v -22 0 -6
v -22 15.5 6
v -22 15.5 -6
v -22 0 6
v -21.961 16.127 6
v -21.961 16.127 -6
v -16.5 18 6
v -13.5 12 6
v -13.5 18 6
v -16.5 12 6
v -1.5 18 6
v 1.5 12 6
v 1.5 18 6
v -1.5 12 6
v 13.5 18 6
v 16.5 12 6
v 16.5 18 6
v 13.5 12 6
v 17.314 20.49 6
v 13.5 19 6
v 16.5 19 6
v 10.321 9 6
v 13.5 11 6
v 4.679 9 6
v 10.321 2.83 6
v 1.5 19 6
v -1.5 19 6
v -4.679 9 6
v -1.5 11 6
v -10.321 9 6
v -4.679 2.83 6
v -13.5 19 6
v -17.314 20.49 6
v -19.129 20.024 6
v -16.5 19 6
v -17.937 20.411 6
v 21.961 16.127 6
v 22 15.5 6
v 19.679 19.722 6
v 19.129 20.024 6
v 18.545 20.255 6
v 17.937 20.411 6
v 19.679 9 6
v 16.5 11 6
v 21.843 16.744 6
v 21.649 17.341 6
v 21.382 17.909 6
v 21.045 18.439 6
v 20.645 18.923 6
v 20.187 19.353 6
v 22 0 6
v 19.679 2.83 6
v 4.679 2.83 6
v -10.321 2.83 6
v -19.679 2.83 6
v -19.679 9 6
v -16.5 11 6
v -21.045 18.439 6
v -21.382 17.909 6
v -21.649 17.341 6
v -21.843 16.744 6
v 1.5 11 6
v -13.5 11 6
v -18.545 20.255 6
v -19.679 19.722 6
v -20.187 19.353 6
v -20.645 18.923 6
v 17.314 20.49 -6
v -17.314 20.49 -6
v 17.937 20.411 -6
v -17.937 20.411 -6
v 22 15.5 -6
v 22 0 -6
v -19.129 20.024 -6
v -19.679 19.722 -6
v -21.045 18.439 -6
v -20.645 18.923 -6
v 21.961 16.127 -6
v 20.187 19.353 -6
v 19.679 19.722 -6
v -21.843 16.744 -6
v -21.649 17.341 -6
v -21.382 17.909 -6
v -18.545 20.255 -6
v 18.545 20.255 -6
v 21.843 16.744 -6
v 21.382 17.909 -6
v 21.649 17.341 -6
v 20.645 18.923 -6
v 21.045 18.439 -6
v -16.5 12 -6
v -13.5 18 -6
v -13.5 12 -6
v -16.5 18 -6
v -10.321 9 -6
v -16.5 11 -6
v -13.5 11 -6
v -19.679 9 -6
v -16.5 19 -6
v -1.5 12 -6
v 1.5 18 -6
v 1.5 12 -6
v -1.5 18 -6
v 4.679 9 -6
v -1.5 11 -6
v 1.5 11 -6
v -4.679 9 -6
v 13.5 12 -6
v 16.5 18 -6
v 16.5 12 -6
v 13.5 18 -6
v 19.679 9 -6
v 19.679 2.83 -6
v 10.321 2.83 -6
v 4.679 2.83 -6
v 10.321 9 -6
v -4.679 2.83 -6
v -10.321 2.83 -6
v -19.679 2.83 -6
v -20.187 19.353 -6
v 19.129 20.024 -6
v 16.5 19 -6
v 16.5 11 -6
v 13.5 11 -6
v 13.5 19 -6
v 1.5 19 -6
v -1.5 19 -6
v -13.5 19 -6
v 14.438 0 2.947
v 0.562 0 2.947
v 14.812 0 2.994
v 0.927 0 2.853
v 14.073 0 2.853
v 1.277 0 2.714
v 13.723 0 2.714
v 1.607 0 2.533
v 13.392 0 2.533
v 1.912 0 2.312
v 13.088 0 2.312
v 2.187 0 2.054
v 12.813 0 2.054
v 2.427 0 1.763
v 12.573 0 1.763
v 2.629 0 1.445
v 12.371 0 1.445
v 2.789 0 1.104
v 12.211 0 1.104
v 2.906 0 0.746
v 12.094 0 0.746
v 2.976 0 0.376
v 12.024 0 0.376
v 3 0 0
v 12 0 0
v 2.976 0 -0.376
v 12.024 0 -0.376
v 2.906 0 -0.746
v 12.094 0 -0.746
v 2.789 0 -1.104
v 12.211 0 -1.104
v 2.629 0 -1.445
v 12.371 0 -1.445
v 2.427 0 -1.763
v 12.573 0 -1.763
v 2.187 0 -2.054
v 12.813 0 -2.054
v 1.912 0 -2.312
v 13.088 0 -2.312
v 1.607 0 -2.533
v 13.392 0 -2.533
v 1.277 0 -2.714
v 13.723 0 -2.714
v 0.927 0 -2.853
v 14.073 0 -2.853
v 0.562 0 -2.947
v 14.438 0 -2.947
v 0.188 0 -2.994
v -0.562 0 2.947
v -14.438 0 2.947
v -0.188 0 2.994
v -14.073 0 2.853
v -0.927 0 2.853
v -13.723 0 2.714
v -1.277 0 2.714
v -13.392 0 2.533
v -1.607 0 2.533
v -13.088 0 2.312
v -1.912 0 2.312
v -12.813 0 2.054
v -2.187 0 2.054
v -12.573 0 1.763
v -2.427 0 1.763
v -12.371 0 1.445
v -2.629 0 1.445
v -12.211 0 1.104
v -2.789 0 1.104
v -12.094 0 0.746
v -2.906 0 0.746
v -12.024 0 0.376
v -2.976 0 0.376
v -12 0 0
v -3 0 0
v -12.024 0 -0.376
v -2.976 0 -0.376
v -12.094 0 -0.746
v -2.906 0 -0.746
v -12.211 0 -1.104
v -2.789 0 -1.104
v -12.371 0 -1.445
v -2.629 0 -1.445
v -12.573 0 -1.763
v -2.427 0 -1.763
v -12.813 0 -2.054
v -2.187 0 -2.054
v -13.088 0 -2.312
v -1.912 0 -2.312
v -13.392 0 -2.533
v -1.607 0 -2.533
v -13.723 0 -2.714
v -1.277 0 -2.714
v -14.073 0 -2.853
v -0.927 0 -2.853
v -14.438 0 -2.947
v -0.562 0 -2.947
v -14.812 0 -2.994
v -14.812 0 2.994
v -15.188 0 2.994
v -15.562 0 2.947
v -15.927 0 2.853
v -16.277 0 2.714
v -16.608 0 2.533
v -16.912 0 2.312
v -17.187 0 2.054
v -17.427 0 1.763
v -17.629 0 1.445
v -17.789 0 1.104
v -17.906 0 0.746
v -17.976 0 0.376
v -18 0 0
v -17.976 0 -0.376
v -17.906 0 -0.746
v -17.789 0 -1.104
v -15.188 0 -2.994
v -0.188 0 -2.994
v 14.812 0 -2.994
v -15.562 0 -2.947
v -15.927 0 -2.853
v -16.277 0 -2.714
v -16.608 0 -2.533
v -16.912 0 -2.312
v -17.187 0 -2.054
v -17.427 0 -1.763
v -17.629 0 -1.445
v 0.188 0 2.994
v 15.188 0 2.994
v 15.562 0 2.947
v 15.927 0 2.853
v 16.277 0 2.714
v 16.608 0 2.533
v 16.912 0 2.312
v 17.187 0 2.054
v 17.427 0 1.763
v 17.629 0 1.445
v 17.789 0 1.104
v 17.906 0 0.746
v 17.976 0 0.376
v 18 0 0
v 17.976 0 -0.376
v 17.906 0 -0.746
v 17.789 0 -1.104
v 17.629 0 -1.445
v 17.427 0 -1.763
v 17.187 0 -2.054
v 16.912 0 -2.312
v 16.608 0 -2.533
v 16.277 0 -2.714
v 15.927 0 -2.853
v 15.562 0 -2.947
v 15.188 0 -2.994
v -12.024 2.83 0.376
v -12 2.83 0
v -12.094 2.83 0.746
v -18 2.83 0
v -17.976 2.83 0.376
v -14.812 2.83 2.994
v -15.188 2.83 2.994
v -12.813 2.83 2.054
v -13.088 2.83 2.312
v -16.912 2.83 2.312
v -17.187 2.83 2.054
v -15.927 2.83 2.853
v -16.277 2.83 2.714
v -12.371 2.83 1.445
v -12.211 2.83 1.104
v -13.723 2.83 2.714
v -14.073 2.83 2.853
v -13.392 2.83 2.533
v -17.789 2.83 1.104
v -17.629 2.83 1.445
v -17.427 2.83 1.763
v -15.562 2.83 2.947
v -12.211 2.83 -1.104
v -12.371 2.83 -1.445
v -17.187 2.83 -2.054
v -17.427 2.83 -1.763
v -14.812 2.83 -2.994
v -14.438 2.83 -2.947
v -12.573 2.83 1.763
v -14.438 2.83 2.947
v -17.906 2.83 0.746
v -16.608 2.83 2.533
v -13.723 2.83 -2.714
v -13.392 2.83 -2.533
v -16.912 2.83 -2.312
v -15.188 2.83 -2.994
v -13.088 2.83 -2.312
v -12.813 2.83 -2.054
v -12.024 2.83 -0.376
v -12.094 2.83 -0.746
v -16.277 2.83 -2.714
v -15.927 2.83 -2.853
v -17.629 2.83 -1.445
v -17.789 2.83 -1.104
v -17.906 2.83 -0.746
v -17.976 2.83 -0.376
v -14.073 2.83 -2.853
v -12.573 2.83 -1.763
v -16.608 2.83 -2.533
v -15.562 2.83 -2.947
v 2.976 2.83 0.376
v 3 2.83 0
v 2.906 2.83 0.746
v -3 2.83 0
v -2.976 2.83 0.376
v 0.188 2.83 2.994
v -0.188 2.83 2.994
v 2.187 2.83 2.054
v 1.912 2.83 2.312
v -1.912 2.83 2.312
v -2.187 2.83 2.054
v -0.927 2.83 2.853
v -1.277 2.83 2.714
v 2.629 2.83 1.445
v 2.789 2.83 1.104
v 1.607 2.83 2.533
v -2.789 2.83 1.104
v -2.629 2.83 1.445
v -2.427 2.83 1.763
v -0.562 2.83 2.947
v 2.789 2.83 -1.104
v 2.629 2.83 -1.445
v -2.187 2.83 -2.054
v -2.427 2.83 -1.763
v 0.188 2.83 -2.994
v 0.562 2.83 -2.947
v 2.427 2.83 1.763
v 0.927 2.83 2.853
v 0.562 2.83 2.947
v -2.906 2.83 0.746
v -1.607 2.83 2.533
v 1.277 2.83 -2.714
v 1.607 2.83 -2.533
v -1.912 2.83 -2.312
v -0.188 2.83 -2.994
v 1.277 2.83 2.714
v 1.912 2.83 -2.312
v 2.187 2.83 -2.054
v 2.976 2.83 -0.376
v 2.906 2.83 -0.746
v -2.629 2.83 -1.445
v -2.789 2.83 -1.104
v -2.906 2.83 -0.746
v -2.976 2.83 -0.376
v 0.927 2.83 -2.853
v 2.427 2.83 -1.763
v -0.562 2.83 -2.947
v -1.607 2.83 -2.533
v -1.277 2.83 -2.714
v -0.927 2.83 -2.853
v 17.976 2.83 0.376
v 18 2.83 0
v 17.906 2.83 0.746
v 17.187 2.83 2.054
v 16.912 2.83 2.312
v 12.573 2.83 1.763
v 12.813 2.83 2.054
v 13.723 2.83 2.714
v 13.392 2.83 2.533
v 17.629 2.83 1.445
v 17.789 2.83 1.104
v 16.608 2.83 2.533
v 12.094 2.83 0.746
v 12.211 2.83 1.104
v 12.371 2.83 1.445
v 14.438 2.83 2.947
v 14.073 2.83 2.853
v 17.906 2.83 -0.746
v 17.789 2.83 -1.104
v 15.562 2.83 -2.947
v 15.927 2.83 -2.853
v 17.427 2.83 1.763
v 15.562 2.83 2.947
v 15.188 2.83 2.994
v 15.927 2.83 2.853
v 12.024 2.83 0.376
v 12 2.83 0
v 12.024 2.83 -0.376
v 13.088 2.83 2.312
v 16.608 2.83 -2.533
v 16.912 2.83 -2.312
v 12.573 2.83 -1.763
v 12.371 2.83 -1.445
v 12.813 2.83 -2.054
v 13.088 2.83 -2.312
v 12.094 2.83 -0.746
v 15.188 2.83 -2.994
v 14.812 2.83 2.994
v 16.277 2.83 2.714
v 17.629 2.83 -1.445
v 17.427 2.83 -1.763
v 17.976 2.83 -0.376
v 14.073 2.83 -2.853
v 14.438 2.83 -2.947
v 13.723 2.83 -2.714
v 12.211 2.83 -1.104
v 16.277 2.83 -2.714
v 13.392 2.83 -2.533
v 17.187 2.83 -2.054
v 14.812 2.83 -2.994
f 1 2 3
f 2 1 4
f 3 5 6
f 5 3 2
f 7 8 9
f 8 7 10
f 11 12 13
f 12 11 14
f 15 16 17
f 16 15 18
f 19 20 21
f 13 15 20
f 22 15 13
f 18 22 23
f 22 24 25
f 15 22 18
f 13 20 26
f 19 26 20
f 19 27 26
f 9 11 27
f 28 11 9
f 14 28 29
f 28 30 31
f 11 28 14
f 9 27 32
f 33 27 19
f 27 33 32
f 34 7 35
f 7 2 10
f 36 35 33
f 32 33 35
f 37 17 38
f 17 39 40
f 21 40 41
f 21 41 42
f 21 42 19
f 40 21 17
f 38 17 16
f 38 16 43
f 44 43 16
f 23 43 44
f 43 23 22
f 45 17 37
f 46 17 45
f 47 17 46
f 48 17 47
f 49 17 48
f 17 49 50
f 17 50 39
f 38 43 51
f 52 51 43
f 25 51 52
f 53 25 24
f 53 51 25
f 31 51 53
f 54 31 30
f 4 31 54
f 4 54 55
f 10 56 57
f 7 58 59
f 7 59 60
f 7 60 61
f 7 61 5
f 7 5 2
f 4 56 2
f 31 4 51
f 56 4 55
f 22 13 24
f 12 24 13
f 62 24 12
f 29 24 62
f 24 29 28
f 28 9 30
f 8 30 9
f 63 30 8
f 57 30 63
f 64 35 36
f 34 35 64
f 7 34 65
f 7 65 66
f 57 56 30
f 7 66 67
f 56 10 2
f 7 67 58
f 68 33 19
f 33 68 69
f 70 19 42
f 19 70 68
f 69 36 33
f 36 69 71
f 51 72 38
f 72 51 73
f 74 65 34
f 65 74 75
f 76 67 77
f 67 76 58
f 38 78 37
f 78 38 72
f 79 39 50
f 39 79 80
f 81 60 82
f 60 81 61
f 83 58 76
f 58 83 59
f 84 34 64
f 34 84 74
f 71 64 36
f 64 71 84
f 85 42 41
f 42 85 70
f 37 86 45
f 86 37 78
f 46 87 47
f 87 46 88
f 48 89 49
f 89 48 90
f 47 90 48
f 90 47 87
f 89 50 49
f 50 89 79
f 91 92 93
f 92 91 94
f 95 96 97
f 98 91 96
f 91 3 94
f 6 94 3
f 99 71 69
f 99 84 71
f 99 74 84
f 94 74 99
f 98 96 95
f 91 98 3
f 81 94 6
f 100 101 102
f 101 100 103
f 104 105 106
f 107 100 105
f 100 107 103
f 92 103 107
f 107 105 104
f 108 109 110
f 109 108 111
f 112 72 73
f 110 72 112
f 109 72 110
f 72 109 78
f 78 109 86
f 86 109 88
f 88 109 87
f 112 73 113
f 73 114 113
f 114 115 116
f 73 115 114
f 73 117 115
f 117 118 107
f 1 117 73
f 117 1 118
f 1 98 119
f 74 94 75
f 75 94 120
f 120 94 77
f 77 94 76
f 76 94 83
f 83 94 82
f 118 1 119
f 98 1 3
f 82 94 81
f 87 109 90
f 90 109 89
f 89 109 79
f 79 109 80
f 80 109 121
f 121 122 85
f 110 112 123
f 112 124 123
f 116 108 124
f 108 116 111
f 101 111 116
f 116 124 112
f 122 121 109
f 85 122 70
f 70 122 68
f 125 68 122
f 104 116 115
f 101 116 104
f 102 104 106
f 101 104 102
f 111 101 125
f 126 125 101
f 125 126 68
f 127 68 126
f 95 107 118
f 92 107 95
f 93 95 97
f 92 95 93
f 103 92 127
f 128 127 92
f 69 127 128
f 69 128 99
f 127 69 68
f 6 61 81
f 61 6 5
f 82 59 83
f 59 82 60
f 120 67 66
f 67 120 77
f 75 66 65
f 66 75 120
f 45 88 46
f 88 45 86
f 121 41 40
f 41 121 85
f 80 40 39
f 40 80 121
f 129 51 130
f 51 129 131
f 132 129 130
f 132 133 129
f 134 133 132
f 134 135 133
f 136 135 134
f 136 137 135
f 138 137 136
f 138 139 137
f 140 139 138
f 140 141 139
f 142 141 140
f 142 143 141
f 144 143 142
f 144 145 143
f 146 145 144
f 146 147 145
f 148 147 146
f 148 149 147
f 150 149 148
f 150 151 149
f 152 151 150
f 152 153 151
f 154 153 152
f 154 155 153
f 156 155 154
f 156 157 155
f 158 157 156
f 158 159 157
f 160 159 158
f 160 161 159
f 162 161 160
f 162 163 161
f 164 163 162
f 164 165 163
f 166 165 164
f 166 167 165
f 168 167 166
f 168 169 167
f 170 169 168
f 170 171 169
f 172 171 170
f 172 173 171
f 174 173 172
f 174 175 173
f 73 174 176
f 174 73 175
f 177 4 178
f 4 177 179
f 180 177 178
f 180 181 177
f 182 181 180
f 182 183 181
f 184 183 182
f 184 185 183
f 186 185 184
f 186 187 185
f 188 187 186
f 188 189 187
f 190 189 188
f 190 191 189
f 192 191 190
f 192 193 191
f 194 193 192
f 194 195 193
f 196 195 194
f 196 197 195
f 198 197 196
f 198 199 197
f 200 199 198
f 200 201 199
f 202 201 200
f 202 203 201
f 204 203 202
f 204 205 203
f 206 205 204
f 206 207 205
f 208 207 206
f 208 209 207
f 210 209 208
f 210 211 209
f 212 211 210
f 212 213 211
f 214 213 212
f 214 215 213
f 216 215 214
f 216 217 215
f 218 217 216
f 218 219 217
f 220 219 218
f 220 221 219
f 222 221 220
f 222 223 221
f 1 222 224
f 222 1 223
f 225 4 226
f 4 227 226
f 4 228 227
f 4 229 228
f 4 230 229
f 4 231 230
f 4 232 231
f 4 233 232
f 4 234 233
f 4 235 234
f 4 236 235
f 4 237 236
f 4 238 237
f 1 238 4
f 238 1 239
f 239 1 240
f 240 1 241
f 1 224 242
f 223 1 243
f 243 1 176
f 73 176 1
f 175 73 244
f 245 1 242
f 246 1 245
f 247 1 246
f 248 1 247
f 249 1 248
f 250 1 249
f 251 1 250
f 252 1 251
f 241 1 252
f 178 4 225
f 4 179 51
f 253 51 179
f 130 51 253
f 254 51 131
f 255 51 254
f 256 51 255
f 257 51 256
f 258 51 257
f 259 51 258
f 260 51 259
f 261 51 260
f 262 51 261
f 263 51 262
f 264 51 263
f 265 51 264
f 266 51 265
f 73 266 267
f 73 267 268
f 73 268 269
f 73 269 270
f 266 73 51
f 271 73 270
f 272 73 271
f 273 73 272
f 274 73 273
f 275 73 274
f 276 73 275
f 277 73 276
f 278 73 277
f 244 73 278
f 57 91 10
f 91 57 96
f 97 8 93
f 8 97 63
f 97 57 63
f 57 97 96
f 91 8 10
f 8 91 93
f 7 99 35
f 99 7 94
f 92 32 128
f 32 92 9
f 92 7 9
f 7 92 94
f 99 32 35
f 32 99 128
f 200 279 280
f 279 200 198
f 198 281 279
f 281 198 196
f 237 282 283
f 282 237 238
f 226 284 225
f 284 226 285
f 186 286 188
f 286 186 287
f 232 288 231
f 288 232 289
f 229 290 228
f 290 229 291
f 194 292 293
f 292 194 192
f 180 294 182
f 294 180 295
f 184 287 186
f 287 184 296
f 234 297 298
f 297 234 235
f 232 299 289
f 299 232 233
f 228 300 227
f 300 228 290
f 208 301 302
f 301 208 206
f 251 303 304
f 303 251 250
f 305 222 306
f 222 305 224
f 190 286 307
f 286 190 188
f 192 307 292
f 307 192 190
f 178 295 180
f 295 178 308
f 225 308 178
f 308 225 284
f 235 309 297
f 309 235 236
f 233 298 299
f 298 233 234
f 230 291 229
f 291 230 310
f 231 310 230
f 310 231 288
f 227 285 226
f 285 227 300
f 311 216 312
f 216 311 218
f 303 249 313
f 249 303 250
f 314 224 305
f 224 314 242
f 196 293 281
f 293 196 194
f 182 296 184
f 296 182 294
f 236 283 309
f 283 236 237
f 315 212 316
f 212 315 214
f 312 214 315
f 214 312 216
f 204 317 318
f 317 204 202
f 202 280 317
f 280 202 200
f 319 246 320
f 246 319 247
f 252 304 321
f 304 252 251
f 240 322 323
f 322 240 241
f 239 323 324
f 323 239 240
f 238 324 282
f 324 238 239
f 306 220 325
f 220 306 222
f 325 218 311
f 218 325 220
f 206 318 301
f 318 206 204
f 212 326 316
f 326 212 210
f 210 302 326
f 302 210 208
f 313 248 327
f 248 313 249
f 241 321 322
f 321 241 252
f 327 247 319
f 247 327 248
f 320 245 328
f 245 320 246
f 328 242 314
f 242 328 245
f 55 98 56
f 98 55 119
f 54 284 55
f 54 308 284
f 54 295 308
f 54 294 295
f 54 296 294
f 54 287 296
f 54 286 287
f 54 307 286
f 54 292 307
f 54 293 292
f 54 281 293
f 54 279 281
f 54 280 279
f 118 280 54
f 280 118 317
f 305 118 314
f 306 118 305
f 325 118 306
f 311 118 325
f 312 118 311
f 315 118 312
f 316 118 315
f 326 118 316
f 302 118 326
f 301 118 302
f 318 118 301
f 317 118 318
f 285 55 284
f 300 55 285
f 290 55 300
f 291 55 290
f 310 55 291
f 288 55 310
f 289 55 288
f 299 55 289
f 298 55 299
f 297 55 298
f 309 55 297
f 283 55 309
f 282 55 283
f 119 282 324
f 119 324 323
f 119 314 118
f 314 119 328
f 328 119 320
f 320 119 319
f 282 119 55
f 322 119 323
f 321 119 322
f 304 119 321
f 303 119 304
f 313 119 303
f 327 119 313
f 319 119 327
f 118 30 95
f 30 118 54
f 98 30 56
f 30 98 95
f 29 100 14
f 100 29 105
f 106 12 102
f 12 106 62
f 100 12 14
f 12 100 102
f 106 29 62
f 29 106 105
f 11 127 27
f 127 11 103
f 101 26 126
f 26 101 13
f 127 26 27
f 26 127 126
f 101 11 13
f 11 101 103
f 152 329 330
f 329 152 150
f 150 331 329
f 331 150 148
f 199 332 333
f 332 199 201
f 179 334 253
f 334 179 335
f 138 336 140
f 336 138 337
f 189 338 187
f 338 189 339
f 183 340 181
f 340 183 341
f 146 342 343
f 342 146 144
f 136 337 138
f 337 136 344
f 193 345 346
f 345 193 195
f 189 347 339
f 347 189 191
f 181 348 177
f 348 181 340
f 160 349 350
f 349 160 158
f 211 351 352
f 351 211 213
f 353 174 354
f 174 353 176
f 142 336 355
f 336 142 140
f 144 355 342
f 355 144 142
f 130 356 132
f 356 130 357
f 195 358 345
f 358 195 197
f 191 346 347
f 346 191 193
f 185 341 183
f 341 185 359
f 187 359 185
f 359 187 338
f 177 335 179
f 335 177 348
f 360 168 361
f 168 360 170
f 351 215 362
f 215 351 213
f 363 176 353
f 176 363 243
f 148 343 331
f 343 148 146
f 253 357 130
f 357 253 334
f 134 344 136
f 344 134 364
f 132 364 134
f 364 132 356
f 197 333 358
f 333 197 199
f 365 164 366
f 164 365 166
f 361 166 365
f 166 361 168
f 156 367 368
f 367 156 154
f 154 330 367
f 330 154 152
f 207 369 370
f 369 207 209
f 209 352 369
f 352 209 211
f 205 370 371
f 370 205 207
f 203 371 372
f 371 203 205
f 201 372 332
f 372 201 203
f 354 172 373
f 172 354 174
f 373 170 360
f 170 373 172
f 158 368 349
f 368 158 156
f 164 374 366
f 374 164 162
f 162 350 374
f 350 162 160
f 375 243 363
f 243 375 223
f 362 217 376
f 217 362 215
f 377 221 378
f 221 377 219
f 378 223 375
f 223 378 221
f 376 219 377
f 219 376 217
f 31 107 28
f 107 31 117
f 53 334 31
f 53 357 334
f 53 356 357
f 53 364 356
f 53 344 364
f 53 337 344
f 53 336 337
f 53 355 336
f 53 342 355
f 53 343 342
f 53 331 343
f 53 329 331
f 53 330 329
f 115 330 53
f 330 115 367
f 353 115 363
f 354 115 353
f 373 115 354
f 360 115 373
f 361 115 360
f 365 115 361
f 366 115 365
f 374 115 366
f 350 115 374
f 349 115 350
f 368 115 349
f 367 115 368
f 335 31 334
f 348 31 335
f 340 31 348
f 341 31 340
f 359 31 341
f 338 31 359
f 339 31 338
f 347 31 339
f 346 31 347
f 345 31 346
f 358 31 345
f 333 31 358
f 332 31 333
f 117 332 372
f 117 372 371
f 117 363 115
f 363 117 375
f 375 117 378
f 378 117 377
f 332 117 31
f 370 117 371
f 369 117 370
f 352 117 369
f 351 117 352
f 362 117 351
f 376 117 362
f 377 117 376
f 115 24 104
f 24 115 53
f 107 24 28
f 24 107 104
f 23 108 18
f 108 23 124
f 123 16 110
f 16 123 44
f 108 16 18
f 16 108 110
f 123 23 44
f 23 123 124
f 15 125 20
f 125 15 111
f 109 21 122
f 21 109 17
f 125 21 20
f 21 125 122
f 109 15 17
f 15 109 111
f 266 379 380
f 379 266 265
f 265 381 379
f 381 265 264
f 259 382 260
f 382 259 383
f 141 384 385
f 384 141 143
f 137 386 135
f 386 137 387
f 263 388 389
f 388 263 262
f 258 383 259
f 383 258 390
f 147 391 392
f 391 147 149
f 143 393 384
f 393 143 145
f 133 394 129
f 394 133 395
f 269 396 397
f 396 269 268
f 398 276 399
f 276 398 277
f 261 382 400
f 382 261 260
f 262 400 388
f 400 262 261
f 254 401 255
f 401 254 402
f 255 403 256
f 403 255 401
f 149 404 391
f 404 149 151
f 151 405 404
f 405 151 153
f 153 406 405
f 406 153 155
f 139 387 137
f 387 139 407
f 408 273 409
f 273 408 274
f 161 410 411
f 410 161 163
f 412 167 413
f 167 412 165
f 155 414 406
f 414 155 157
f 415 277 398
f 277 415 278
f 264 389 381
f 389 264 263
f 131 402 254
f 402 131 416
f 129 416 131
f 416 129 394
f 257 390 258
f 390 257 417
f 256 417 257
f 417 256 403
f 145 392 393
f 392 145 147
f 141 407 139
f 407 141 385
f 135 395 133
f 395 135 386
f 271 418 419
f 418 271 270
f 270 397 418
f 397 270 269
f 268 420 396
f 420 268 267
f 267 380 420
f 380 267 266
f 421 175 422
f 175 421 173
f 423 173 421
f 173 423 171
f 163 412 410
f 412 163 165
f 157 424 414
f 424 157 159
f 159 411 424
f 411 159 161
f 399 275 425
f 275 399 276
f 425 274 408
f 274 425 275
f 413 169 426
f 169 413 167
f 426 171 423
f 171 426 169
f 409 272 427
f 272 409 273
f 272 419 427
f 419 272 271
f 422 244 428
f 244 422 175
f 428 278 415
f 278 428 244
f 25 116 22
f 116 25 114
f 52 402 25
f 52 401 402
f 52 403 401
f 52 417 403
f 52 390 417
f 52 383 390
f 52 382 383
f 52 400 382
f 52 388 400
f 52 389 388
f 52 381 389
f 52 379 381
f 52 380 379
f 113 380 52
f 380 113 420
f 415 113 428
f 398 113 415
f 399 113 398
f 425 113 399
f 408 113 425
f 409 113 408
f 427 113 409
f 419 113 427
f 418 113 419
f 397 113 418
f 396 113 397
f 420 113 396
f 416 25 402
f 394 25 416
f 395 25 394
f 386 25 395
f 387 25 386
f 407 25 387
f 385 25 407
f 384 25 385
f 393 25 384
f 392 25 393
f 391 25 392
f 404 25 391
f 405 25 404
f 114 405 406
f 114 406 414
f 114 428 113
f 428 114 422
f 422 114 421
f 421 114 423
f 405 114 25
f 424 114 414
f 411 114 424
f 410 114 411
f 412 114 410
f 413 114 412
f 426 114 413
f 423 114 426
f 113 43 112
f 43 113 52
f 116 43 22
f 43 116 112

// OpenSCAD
$fn = 50;


difference() {
	union() {
		translate(v = [0, 13.5000000000, -6.0000000000]) {
			rotate(a = [0, 0, 0]) {
				hull() {
					translate(v = [-17.0000000000, 2.0000000000, 0]) {
						rotate(a = [0, 0, 0]) {
							translate(v = [0, 0, 0]) {
								rotate(a = [0, 0, 0]) {
									cylinder(h = 12, r = 5);
								}
							}
						}
					}
					translate(v = [17.0000000000, 2.0000000000, 0]) {
						rotate(a = [0, 0, 0]) {
							translate(v = [0, 0, 0]) {
								rotate(a = [0, 0, 0]) {
									cylinder(h = 12, r = 5);
								}
							}
						}
					}
					translate(v = [-17.0000000000, -2.0000000000, 0]) {
						rotate(a = [0, 0, 0]) {
							translate(v = [0, 0, 0]) {
								rotate(a = [0, 0, 0]) {
									cylinder(h = 12, r = 5);
								}
							}
						}
					}
					translate(v = [17.0000000000, -2.0000000000, 0]) {
						rotate(a = [0, 0, 0]) {
							translate(v = [0, 0, 0]) {
								rotate(a = [0, 0, 0]) {
									cylinder(h = 12, r = 5);
								}
							}
						}
					}
				}
			}
		}
		translate(v = [-22.0000000000, 0, -6.0000000000]) {
			rotate(a = [0, 0, 0]) {
				cube(size = [44, 13.5000000000, 12]);
			}
		}
	}
	union() {
		translate(v = [-16.5000000000, 11.0000000000, -50]) {
			rotate(a = [0, 0, 0]) {
				cube(size = [3, 1, 100]);
			}
		}
		translate(v = [-16.5000000000, 18.0000000000, -50]) {
			rotate(a = [0, 0, 0]) {
				cube(size = [3, 1, 100]);
			}
		}
		translate(v = [-15.0000000000, 8, 0]) {
			rotate(a = [90, 0, 0]) {
				cylinder(h = 8, r = 3.0000000000);
			}
		}
		translate(v = [-19.6793760832, 9, -25]) {
			rotate(a = [90, 0, 0]) {
				cube(size = [9.3587521664, 100, 6.1700000000]);
			}
		}
		translate(v = [-1.5000000000, 11.0000000000, -50]) {
			rotate(a = [0, 0, 0]) {
				cube(size = [3, 1, 100]);
			}
		}
		translate(v = [-1.5000000000, 18.0000000000, -50]) {
			rotate(a = [0, 0, 0]) {
				cube(size = [3, 1, 100]);
			}
		}
		translate(v = [0.0000000000, 8, 0]) {
			rotate(a = [90, 0, 0]) {
				cylinder(h = 8, r = 3.0000000000);
			}
		}
		translate(v = [-4.6793760832, 9, -25]) {
			rotate(a = [90, 0, 0]) {
				cube(size = [9.3587521664, 100, 6.1700000000]);
			}
		}
		translate(v = [13.5000000000, 11.0000000000, -50]) {
			rotate(a = [0, 0, 0]) {
				cube(size = [3, 1, 100]);
			}
		}
		translate(v = [13.5000000000, 18.0000000000, -50]) {
			rotate(a = [0, 0, 0]) {
				cube(size = [3, 1, 100]);
			}
		}
		translate(v = [15.0000000000, 8, 0]) {
			rotate(a = [90, 0, 0]) {
				cylinder(h = 8, r = 3.0000000000);
			}
		}
		translate(v = [10.3206239168, 9, -25]) {
			rotate(a = [90, 0, 0]) {
				cube(size = [9.3587521664, 100, 6.1700000000]);
			}
		}
	}
}
